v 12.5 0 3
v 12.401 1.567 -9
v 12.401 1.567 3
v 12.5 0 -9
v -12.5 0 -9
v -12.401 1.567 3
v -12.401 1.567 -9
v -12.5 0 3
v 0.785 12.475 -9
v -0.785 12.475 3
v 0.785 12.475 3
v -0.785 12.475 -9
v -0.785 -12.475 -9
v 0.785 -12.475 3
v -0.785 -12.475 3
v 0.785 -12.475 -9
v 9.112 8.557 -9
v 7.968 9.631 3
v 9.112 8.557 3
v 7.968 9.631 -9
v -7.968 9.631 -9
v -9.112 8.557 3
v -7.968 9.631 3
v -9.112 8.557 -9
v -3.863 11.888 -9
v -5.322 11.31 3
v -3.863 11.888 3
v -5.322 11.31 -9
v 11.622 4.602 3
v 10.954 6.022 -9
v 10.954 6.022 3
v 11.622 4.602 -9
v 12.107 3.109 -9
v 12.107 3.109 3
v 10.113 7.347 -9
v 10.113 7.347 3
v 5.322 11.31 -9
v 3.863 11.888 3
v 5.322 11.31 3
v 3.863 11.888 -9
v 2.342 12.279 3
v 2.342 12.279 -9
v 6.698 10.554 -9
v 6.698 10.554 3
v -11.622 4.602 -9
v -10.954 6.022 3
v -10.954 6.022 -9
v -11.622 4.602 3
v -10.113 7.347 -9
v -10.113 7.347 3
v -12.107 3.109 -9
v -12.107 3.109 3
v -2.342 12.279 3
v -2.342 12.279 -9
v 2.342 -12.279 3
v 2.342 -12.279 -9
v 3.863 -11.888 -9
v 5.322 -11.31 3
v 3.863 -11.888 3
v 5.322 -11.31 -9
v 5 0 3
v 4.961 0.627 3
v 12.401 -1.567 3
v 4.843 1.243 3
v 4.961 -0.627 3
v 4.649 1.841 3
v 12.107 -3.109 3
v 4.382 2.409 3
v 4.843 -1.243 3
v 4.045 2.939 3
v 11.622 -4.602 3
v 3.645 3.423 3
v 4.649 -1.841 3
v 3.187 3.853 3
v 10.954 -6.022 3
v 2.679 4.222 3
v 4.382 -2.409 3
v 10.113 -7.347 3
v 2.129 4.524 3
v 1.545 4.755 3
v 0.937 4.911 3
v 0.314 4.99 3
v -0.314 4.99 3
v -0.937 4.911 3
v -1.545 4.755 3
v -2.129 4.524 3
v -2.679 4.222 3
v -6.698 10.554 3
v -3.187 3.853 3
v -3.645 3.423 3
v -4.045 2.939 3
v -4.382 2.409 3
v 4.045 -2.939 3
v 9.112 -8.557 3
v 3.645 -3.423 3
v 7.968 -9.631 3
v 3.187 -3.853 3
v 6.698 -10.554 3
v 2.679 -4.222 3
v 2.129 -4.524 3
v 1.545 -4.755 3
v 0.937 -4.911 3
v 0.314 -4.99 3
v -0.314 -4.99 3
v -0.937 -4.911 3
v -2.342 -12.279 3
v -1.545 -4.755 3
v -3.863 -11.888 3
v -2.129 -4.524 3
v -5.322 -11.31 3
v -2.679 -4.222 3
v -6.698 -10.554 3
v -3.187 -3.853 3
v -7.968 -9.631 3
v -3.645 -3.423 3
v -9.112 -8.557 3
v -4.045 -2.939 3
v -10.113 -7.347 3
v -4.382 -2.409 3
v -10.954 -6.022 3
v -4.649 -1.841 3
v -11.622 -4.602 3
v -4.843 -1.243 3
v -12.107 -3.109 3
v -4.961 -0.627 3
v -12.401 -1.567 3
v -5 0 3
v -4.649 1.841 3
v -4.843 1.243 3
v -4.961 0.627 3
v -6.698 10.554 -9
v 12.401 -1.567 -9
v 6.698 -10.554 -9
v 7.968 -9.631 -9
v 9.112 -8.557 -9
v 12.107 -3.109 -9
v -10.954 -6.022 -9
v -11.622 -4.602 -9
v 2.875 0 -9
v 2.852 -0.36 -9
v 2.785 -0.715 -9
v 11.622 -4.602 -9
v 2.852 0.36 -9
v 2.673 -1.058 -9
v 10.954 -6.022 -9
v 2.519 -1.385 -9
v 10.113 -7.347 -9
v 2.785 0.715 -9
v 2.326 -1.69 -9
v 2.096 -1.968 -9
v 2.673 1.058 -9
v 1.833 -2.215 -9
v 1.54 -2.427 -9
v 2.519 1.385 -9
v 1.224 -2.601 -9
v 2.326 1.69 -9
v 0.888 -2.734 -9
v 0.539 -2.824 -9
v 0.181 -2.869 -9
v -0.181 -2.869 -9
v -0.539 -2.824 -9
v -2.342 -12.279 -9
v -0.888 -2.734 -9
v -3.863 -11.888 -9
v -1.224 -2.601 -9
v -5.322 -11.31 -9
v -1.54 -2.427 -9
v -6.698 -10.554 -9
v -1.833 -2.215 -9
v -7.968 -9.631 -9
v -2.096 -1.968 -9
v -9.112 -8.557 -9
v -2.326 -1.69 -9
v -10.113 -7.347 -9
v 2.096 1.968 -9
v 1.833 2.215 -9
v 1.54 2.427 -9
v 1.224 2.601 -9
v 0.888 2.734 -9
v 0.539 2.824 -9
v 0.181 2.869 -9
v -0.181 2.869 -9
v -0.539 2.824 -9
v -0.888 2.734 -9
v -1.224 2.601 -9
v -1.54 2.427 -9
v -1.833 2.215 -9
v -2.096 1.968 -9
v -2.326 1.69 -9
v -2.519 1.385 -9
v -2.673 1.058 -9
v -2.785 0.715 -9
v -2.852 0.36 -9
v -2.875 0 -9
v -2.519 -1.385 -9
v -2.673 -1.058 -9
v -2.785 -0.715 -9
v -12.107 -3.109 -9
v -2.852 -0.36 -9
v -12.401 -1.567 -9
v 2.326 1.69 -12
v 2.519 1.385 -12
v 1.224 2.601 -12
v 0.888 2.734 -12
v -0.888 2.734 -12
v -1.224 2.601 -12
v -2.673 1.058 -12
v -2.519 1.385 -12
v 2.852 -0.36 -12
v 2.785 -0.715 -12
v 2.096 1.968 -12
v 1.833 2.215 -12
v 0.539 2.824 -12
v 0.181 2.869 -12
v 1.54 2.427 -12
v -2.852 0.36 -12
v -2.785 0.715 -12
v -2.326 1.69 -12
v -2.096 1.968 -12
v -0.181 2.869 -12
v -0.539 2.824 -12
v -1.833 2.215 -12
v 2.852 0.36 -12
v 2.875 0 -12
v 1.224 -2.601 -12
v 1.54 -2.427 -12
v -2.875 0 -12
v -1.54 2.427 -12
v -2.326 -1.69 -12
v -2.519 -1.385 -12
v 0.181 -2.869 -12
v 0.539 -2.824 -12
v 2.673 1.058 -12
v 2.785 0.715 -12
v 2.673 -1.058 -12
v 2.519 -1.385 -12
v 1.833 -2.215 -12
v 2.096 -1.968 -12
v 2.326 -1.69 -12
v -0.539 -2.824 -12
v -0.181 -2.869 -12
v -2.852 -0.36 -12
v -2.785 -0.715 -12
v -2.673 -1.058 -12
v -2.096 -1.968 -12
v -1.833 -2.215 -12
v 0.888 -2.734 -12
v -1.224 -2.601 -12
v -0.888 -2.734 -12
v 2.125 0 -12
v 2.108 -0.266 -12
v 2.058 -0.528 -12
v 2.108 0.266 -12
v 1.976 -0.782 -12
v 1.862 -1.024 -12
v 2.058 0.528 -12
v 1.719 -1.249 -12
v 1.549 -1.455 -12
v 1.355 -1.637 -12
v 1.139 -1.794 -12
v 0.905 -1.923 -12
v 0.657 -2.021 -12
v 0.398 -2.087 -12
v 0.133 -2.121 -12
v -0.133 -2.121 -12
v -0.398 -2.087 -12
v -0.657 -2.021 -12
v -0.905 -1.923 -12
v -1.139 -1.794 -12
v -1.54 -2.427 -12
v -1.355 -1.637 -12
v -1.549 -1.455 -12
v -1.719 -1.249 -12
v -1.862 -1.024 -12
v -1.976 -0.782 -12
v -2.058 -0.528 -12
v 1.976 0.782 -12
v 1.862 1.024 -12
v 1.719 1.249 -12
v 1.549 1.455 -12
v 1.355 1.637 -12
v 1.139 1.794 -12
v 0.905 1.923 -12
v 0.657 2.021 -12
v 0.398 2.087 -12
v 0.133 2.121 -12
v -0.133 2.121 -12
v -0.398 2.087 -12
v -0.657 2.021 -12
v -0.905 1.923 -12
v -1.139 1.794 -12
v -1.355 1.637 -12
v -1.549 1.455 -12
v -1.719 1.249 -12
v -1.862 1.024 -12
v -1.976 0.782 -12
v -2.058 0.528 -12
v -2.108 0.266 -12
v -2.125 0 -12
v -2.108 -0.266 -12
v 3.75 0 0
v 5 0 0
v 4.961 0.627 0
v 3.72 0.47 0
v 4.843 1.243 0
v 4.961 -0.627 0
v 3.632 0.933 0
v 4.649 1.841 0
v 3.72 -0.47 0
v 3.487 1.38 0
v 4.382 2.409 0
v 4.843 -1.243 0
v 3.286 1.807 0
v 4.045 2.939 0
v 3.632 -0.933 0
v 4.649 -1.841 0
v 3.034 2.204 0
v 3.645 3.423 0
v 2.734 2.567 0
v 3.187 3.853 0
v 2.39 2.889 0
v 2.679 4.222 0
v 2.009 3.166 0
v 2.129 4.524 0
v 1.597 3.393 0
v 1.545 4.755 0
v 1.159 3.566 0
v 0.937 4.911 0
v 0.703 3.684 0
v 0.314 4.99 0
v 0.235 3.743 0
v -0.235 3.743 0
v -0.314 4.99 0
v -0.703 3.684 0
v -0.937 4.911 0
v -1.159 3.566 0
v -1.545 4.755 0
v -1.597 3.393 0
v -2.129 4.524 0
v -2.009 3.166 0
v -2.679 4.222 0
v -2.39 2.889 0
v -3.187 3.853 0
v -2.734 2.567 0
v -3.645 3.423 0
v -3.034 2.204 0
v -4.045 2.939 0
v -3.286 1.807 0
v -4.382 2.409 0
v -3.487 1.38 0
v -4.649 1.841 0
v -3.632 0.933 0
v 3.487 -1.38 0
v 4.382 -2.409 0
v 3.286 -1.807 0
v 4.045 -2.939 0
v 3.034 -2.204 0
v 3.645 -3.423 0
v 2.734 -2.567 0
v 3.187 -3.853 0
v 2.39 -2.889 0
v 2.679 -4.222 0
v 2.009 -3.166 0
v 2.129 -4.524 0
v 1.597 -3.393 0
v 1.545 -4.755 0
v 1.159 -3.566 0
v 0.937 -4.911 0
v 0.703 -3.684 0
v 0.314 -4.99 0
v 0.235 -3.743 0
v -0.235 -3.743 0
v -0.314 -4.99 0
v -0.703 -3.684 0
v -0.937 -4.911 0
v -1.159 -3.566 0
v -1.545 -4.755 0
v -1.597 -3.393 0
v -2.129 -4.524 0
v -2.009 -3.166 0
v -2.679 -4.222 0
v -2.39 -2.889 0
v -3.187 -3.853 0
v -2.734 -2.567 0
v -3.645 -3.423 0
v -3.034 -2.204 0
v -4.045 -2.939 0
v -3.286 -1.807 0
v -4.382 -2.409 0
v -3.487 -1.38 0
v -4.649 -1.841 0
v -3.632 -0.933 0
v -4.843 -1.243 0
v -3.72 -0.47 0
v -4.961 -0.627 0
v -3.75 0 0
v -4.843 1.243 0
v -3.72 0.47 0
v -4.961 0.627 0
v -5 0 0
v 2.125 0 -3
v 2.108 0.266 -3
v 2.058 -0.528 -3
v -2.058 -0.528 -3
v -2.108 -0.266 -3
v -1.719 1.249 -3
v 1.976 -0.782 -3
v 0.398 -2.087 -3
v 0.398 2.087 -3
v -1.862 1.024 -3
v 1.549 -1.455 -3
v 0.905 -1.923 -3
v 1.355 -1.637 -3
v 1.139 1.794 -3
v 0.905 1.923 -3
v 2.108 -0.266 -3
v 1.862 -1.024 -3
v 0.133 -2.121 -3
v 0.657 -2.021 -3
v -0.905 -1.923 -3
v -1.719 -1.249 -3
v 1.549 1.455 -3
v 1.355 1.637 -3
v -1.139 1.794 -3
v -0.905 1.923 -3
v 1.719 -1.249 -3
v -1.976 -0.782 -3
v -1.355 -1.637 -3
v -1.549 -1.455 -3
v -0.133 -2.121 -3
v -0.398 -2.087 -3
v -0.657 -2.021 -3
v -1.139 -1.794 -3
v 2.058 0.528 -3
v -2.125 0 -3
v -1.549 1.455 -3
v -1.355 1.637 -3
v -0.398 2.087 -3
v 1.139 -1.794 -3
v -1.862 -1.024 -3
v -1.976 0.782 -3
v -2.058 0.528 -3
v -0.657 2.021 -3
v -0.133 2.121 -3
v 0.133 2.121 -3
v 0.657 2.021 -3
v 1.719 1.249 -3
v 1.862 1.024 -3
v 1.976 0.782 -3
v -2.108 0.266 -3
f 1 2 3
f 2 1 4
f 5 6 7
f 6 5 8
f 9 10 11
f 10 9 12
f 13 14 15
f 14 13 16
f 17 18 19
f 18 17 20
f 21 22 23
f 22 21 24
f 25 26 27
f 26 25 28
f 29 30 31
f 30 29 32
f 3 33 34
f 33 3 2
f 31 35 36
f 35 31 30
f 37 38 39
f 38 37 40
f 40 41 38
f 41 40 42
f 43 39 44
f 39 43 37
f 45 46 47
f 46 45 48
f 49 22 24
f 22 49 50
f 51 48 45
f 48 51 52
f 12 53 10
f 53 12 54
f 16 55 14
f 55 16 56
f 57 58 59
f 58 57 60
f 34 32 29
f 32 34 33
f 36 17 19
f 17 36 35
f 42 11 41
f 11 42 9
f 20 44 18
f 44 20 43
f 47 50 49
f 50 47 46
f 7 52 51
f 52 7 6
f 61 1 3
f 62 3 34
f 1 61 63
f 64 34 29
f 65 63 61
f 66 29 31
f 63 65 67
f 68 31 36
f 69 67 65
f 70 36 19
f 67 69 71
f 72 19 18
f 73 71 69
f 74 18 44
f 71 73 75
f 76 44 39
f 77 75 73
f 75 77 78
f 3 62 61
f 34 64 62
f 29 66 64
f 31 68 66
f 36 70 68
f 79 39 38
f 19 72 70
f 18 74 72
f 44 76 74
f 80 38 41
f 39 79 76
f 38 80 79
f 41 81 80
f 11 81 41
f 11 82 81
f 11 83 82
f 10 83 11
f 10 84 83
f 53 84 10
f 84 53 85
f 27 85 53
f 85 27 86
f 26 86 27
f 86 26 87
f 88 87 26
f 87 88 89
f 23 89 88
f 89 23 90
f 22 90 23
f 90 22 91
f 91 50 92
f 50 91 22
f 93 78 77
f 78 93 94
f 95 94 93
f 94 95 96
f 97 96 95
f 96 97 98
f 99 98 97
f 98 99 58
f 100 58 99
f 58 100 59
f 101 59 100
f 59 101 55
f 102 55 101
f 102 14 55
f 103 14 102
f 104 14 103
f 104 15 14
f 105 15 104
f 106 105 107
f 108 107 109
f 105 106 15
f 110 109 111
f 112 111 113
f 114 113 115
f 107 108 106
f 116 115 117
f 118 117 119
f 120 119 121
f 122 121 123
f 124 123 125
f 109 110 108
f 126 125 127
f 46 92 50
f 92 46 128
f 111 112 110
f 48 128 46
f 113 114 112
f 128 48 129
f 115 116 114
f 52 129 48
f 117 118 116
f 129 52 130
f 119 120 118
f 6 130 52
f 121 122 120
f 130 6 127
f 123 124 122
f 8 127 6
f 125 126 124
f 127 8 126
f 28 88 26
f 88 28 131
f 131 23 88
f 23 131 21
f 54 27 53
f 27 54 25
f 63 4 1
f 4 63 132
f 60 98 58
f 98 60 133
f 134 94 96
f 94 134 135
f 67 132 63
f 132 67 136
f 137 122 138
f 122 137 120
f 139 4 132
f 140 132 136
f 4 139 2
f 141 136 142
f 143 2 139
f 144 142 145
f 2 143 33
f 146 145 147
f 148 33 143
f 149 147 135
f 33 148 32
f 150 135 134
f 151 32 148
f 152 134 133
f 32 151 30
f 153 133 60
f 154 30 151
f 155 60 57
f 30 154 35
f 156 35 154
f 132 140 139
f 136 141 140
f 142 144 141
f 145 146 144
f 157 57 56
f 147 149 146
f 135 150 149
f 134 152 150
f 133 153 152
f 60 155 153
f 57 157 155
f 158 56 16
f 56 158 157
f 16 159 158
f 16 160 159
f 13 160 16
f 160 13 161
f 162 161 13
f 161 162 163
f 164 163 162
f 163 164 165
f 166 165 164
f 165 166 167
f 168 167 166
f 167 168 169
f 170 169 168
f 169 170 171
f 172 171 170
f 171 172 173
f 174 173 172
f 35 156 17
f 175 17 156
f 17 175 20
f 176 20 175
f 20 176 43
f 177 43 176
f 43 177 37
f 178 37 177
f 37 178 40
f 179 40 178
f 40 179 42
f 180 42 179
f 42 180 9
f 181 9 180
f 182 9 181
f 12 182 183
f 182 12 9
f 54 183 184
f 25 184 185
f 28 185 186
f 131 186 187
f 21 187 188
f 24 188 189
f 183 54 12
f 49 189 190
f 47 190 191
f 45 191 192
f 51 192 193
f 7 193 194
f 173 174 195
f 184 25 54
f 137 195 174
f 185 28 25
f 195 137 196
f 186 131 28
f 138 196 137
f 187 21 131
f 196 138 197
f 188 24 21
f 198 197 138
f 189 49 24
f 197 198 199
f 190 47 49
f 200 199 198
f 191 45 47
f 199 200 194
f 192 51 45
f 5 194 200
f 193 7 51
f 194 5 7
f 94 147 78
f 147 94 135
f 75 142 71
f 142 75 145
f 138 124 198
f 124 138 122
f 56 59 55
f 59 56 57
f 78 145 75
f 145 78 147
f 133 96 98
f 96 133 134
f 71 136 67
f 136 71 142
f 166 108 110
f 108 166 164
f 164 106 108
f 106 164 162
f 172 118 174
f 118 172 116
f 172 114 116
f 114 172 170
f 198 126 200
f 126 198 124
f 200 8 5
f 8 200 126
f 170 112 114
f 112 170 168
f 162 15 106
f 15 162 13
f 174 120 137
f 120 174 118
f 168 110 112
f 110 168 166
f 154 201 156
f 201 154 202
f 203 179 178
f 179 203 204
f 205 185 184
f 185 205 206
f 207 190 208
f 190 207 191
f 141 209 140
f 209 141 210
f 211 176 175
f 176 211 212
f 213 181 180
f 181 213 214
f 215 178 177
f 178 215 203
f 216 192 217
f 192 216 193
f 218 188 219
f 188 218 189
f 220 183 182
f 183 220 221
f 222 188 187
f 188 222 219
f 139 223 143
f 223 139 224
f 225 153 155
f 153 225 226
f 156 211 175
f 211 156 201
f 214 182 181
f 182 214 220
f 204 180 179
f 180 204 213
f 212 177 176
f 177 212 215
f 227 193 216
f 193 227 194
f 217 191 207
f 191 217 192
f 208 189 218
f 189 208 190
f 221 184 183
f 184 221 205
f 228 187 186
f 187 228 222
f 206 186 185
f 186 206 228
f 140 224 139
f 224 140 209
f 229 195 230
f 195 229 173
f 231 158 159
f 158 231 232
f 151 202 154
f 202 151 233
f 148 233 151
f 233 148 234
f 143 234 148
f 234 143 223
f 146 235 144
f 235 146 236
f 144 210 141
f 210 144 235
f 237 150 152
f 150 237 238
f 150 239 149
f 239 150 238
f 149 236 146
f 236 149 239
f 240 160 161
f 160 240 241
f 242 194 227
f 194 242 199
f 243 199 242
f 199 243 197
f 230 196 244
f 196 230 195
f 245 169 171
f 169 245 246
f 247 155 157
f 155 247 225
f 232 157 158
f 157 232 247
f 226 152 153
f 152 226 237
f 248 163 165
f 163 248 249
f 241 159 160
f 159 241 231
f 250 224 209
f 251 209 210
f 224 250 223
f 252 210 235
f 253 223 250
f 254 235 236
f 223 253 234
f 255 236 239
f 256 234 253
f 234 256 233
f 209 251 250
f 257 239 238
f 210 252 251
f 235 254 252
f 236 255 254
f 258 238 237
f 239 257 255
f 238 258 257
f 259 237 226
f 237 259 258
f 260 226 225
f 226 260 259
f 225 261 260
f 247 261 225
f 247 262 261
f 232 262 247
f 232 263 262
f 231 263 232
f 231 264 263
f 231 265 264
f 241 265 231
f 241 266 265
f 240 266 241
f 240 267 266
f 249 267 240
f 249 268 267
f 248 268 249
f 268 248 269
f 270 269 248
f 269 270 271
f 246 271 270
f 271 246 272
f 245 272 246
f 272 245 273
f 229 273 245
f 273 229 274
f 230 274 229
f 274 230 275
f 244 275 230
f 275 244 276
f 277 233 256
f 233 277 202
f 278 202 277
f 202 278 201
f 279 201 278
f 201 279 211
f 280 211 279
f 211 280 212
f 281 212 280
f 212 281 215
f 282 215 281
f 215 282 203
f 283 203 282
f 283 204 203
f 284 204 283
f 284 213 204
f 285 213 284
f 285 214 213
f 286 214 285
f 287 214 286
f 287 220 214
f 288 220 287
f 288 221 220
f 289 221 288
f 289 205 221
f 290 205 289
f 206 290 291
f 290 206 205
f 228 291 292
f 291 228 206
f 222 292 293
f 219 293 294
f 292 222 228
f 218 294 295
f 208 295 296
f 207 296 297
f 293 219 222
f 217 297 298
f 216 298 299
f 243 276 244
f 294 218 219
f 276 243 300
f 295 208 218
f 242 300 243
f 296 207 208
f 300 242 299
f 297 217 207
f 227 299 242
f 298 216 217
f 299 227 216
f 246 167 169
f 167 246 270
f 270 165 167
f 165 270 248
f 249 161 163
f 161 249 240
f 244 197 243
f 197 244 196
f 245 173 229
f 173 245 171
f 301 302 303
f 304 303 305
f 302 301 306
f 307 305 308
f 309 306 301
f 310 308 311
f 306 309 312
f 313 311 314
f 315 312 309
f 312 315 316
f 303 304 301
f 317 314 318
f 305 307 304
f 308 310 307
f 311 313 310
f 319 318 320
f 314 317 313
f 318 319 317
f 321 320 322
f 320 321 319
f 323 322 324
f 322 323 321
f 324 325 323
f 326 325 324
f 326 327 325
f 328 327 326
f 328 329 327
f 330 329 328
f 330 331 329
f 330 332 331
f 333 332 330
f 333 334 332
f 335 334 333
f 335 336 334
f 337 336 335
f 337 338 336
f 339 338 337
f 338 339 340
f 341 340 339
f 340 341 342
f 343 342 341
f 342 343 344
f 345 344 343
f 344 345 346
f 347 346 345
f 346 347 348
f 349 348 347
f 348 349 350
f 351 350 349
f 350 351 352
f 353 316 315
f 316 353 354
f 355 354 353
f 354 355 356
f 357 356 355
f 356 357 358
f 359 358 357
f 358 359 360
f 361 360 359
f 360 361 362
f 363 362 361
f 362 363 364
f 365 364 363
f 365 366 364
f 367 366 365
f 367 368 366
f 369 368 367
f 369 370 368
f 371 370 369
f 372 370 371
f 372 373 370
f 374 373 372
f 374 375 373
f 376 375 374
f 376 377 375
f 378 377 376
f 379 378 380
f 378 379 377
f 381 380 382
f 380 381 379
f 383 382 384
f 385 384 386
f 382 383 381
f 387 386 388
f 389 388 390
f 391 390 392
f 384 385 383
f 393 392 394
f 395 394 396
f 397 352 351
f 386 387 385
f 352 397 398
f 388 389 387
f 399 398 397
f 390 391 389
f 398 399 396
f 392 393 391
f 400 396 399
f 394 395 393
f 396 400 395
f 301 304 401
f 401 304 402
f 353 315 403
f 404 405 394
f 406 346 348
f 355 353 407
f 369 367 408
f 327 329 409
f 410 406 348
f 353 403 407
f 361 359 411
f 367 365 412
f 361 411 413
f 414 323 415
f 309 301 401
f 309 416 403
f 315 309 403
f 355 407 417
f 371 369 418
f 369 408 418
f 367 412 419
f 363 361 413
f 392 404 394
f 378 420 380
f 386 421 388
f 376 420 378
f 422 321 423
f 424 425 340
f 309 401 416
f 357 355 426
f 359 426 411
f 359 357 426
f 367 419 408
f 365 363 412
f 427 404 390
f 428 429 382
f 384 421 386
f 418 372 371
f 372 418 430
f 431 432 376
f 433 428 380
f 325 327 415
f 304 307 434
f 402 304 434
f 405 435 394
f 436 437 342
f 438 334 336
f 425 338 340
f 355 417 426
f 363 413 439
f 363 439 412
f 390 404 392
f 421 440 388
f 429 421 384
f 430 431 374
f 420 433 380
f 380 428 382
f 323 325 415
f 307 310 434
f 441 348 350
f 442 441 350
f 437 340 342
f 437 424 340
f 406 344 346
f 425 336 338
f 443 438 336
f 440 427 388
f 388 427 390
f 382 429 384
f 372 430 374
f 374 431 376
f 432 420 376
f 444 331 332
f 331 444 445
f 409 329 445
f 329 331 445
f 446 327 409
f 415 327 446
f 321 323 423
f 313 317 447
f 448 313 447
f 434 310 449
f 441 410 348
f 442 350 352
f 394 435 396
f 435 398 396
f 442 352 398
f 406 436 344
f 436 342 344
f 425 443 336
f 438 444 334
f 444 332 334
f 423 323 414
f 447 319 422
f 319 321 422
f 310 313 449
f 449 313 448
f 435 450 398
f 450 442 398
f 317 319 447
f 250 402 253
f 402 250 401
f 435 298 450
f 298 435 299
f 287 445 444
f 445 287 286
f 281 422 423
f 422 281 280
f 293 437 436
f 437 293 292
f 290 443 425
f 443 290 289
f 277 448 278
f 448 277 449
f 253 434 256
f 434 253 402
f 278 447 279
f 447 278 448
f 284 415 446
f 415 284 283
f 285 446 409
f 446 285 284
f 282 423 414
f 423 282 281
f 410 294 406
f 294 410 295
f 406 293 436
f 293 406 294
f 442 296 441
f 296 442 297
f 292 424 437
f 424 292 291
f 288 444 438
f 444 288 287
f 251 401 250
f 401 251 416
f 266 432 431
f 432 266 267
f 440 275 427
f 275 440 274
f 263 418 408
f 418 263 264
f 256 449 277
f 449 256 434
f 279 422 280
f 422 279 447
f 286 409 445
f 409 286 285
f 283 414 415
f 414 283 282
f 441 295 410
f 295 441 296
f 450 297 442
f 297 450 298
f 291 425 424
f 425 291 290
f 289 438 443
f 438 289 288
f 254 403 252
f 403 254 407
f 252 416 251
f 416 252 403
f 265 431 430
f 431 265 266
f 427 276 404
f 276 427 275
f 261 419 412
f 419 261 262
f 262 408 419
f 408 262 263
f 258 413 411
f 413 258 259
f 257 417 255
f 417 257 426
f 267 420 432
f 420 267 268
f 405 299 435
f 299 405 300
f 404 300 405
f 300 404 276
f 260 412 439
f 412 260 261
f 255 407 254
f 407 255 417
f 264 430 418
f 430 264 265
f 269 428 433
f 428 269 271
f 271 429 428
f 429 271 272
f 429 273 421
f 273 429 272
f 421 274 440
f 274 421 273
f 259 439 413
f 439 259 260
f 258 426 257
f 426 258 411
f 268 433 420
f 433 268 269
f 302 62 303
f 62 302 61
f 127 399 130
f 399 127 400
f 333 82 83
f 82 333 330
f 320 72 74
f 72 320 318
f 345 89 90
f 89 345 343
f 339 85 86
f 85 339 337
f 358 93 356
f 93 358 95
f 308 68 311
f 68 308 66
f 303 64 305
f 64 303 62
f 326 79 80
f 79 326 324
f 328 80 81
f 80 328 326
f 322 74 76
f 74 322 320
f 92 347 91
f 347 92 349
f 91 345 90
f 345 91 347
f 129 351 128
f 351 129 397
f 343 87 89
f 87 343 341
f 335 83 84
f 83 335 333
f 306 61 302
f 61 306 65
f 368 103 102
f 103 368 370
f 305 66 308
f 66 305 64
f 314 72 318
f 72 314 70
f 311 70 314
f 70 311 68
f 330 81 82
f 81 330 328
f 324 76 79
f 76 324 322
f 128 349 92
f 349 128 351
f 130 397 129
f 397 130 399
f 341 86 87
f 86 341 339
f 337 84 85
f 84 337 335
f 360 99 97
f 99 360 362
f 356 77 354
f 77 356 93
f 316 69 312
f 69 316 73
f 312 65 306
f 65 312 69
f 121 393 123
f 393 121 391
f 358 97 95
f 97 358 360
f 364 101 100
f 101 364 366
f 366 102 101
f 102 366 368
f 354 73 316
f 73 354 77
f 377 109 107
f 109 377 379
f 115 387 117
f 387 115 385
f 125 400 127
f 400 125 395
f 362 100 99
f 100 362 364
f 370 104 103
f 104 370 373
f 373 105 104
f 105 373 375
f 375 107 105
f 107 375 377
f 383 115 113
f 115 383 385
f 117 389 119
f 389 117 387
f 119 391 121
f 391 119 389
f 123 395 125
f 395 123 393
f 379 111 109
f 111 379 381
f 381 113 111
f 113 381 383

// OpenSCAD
$fn = 50;


difference() {
	union() {
		translate(v = [0, 0, -9.0000000000]) {
			cylinder(h = 12, r = 12.5000000000);
		}
		#translate(v = [0, 0, -12.0000000000]) {
			cylinder(h = 12, r = 2.8750000000);
		}
	}
	union() {
		translate(v = [0, 0, 0]) {
			rotate(a = [0, 0, 0]) {
				difference() {
					union() {
						translate(v = [0, 0, -12.0000000000]) {
							cylinder(h = 12, r = 2.0000000000);
						}
						translate(v = [0, 0, -3]) {
							cylinder(h = 3, r1 = 2.1250000000, r2 = 3.7500000000);
						}
						translate(v = [0, 0, -12.0000000000]) {
							cylinder(h = 12, r = 2.1250000000);
						}
						translate(v = [0, 0, -12.0000000000]) {
							cylinder(h = 12, r = 2.0000000000);
						}
					}
					union();
				}
			}
		}
		#cylinder(h = 3, r = 5.0000000000);
	}
}
